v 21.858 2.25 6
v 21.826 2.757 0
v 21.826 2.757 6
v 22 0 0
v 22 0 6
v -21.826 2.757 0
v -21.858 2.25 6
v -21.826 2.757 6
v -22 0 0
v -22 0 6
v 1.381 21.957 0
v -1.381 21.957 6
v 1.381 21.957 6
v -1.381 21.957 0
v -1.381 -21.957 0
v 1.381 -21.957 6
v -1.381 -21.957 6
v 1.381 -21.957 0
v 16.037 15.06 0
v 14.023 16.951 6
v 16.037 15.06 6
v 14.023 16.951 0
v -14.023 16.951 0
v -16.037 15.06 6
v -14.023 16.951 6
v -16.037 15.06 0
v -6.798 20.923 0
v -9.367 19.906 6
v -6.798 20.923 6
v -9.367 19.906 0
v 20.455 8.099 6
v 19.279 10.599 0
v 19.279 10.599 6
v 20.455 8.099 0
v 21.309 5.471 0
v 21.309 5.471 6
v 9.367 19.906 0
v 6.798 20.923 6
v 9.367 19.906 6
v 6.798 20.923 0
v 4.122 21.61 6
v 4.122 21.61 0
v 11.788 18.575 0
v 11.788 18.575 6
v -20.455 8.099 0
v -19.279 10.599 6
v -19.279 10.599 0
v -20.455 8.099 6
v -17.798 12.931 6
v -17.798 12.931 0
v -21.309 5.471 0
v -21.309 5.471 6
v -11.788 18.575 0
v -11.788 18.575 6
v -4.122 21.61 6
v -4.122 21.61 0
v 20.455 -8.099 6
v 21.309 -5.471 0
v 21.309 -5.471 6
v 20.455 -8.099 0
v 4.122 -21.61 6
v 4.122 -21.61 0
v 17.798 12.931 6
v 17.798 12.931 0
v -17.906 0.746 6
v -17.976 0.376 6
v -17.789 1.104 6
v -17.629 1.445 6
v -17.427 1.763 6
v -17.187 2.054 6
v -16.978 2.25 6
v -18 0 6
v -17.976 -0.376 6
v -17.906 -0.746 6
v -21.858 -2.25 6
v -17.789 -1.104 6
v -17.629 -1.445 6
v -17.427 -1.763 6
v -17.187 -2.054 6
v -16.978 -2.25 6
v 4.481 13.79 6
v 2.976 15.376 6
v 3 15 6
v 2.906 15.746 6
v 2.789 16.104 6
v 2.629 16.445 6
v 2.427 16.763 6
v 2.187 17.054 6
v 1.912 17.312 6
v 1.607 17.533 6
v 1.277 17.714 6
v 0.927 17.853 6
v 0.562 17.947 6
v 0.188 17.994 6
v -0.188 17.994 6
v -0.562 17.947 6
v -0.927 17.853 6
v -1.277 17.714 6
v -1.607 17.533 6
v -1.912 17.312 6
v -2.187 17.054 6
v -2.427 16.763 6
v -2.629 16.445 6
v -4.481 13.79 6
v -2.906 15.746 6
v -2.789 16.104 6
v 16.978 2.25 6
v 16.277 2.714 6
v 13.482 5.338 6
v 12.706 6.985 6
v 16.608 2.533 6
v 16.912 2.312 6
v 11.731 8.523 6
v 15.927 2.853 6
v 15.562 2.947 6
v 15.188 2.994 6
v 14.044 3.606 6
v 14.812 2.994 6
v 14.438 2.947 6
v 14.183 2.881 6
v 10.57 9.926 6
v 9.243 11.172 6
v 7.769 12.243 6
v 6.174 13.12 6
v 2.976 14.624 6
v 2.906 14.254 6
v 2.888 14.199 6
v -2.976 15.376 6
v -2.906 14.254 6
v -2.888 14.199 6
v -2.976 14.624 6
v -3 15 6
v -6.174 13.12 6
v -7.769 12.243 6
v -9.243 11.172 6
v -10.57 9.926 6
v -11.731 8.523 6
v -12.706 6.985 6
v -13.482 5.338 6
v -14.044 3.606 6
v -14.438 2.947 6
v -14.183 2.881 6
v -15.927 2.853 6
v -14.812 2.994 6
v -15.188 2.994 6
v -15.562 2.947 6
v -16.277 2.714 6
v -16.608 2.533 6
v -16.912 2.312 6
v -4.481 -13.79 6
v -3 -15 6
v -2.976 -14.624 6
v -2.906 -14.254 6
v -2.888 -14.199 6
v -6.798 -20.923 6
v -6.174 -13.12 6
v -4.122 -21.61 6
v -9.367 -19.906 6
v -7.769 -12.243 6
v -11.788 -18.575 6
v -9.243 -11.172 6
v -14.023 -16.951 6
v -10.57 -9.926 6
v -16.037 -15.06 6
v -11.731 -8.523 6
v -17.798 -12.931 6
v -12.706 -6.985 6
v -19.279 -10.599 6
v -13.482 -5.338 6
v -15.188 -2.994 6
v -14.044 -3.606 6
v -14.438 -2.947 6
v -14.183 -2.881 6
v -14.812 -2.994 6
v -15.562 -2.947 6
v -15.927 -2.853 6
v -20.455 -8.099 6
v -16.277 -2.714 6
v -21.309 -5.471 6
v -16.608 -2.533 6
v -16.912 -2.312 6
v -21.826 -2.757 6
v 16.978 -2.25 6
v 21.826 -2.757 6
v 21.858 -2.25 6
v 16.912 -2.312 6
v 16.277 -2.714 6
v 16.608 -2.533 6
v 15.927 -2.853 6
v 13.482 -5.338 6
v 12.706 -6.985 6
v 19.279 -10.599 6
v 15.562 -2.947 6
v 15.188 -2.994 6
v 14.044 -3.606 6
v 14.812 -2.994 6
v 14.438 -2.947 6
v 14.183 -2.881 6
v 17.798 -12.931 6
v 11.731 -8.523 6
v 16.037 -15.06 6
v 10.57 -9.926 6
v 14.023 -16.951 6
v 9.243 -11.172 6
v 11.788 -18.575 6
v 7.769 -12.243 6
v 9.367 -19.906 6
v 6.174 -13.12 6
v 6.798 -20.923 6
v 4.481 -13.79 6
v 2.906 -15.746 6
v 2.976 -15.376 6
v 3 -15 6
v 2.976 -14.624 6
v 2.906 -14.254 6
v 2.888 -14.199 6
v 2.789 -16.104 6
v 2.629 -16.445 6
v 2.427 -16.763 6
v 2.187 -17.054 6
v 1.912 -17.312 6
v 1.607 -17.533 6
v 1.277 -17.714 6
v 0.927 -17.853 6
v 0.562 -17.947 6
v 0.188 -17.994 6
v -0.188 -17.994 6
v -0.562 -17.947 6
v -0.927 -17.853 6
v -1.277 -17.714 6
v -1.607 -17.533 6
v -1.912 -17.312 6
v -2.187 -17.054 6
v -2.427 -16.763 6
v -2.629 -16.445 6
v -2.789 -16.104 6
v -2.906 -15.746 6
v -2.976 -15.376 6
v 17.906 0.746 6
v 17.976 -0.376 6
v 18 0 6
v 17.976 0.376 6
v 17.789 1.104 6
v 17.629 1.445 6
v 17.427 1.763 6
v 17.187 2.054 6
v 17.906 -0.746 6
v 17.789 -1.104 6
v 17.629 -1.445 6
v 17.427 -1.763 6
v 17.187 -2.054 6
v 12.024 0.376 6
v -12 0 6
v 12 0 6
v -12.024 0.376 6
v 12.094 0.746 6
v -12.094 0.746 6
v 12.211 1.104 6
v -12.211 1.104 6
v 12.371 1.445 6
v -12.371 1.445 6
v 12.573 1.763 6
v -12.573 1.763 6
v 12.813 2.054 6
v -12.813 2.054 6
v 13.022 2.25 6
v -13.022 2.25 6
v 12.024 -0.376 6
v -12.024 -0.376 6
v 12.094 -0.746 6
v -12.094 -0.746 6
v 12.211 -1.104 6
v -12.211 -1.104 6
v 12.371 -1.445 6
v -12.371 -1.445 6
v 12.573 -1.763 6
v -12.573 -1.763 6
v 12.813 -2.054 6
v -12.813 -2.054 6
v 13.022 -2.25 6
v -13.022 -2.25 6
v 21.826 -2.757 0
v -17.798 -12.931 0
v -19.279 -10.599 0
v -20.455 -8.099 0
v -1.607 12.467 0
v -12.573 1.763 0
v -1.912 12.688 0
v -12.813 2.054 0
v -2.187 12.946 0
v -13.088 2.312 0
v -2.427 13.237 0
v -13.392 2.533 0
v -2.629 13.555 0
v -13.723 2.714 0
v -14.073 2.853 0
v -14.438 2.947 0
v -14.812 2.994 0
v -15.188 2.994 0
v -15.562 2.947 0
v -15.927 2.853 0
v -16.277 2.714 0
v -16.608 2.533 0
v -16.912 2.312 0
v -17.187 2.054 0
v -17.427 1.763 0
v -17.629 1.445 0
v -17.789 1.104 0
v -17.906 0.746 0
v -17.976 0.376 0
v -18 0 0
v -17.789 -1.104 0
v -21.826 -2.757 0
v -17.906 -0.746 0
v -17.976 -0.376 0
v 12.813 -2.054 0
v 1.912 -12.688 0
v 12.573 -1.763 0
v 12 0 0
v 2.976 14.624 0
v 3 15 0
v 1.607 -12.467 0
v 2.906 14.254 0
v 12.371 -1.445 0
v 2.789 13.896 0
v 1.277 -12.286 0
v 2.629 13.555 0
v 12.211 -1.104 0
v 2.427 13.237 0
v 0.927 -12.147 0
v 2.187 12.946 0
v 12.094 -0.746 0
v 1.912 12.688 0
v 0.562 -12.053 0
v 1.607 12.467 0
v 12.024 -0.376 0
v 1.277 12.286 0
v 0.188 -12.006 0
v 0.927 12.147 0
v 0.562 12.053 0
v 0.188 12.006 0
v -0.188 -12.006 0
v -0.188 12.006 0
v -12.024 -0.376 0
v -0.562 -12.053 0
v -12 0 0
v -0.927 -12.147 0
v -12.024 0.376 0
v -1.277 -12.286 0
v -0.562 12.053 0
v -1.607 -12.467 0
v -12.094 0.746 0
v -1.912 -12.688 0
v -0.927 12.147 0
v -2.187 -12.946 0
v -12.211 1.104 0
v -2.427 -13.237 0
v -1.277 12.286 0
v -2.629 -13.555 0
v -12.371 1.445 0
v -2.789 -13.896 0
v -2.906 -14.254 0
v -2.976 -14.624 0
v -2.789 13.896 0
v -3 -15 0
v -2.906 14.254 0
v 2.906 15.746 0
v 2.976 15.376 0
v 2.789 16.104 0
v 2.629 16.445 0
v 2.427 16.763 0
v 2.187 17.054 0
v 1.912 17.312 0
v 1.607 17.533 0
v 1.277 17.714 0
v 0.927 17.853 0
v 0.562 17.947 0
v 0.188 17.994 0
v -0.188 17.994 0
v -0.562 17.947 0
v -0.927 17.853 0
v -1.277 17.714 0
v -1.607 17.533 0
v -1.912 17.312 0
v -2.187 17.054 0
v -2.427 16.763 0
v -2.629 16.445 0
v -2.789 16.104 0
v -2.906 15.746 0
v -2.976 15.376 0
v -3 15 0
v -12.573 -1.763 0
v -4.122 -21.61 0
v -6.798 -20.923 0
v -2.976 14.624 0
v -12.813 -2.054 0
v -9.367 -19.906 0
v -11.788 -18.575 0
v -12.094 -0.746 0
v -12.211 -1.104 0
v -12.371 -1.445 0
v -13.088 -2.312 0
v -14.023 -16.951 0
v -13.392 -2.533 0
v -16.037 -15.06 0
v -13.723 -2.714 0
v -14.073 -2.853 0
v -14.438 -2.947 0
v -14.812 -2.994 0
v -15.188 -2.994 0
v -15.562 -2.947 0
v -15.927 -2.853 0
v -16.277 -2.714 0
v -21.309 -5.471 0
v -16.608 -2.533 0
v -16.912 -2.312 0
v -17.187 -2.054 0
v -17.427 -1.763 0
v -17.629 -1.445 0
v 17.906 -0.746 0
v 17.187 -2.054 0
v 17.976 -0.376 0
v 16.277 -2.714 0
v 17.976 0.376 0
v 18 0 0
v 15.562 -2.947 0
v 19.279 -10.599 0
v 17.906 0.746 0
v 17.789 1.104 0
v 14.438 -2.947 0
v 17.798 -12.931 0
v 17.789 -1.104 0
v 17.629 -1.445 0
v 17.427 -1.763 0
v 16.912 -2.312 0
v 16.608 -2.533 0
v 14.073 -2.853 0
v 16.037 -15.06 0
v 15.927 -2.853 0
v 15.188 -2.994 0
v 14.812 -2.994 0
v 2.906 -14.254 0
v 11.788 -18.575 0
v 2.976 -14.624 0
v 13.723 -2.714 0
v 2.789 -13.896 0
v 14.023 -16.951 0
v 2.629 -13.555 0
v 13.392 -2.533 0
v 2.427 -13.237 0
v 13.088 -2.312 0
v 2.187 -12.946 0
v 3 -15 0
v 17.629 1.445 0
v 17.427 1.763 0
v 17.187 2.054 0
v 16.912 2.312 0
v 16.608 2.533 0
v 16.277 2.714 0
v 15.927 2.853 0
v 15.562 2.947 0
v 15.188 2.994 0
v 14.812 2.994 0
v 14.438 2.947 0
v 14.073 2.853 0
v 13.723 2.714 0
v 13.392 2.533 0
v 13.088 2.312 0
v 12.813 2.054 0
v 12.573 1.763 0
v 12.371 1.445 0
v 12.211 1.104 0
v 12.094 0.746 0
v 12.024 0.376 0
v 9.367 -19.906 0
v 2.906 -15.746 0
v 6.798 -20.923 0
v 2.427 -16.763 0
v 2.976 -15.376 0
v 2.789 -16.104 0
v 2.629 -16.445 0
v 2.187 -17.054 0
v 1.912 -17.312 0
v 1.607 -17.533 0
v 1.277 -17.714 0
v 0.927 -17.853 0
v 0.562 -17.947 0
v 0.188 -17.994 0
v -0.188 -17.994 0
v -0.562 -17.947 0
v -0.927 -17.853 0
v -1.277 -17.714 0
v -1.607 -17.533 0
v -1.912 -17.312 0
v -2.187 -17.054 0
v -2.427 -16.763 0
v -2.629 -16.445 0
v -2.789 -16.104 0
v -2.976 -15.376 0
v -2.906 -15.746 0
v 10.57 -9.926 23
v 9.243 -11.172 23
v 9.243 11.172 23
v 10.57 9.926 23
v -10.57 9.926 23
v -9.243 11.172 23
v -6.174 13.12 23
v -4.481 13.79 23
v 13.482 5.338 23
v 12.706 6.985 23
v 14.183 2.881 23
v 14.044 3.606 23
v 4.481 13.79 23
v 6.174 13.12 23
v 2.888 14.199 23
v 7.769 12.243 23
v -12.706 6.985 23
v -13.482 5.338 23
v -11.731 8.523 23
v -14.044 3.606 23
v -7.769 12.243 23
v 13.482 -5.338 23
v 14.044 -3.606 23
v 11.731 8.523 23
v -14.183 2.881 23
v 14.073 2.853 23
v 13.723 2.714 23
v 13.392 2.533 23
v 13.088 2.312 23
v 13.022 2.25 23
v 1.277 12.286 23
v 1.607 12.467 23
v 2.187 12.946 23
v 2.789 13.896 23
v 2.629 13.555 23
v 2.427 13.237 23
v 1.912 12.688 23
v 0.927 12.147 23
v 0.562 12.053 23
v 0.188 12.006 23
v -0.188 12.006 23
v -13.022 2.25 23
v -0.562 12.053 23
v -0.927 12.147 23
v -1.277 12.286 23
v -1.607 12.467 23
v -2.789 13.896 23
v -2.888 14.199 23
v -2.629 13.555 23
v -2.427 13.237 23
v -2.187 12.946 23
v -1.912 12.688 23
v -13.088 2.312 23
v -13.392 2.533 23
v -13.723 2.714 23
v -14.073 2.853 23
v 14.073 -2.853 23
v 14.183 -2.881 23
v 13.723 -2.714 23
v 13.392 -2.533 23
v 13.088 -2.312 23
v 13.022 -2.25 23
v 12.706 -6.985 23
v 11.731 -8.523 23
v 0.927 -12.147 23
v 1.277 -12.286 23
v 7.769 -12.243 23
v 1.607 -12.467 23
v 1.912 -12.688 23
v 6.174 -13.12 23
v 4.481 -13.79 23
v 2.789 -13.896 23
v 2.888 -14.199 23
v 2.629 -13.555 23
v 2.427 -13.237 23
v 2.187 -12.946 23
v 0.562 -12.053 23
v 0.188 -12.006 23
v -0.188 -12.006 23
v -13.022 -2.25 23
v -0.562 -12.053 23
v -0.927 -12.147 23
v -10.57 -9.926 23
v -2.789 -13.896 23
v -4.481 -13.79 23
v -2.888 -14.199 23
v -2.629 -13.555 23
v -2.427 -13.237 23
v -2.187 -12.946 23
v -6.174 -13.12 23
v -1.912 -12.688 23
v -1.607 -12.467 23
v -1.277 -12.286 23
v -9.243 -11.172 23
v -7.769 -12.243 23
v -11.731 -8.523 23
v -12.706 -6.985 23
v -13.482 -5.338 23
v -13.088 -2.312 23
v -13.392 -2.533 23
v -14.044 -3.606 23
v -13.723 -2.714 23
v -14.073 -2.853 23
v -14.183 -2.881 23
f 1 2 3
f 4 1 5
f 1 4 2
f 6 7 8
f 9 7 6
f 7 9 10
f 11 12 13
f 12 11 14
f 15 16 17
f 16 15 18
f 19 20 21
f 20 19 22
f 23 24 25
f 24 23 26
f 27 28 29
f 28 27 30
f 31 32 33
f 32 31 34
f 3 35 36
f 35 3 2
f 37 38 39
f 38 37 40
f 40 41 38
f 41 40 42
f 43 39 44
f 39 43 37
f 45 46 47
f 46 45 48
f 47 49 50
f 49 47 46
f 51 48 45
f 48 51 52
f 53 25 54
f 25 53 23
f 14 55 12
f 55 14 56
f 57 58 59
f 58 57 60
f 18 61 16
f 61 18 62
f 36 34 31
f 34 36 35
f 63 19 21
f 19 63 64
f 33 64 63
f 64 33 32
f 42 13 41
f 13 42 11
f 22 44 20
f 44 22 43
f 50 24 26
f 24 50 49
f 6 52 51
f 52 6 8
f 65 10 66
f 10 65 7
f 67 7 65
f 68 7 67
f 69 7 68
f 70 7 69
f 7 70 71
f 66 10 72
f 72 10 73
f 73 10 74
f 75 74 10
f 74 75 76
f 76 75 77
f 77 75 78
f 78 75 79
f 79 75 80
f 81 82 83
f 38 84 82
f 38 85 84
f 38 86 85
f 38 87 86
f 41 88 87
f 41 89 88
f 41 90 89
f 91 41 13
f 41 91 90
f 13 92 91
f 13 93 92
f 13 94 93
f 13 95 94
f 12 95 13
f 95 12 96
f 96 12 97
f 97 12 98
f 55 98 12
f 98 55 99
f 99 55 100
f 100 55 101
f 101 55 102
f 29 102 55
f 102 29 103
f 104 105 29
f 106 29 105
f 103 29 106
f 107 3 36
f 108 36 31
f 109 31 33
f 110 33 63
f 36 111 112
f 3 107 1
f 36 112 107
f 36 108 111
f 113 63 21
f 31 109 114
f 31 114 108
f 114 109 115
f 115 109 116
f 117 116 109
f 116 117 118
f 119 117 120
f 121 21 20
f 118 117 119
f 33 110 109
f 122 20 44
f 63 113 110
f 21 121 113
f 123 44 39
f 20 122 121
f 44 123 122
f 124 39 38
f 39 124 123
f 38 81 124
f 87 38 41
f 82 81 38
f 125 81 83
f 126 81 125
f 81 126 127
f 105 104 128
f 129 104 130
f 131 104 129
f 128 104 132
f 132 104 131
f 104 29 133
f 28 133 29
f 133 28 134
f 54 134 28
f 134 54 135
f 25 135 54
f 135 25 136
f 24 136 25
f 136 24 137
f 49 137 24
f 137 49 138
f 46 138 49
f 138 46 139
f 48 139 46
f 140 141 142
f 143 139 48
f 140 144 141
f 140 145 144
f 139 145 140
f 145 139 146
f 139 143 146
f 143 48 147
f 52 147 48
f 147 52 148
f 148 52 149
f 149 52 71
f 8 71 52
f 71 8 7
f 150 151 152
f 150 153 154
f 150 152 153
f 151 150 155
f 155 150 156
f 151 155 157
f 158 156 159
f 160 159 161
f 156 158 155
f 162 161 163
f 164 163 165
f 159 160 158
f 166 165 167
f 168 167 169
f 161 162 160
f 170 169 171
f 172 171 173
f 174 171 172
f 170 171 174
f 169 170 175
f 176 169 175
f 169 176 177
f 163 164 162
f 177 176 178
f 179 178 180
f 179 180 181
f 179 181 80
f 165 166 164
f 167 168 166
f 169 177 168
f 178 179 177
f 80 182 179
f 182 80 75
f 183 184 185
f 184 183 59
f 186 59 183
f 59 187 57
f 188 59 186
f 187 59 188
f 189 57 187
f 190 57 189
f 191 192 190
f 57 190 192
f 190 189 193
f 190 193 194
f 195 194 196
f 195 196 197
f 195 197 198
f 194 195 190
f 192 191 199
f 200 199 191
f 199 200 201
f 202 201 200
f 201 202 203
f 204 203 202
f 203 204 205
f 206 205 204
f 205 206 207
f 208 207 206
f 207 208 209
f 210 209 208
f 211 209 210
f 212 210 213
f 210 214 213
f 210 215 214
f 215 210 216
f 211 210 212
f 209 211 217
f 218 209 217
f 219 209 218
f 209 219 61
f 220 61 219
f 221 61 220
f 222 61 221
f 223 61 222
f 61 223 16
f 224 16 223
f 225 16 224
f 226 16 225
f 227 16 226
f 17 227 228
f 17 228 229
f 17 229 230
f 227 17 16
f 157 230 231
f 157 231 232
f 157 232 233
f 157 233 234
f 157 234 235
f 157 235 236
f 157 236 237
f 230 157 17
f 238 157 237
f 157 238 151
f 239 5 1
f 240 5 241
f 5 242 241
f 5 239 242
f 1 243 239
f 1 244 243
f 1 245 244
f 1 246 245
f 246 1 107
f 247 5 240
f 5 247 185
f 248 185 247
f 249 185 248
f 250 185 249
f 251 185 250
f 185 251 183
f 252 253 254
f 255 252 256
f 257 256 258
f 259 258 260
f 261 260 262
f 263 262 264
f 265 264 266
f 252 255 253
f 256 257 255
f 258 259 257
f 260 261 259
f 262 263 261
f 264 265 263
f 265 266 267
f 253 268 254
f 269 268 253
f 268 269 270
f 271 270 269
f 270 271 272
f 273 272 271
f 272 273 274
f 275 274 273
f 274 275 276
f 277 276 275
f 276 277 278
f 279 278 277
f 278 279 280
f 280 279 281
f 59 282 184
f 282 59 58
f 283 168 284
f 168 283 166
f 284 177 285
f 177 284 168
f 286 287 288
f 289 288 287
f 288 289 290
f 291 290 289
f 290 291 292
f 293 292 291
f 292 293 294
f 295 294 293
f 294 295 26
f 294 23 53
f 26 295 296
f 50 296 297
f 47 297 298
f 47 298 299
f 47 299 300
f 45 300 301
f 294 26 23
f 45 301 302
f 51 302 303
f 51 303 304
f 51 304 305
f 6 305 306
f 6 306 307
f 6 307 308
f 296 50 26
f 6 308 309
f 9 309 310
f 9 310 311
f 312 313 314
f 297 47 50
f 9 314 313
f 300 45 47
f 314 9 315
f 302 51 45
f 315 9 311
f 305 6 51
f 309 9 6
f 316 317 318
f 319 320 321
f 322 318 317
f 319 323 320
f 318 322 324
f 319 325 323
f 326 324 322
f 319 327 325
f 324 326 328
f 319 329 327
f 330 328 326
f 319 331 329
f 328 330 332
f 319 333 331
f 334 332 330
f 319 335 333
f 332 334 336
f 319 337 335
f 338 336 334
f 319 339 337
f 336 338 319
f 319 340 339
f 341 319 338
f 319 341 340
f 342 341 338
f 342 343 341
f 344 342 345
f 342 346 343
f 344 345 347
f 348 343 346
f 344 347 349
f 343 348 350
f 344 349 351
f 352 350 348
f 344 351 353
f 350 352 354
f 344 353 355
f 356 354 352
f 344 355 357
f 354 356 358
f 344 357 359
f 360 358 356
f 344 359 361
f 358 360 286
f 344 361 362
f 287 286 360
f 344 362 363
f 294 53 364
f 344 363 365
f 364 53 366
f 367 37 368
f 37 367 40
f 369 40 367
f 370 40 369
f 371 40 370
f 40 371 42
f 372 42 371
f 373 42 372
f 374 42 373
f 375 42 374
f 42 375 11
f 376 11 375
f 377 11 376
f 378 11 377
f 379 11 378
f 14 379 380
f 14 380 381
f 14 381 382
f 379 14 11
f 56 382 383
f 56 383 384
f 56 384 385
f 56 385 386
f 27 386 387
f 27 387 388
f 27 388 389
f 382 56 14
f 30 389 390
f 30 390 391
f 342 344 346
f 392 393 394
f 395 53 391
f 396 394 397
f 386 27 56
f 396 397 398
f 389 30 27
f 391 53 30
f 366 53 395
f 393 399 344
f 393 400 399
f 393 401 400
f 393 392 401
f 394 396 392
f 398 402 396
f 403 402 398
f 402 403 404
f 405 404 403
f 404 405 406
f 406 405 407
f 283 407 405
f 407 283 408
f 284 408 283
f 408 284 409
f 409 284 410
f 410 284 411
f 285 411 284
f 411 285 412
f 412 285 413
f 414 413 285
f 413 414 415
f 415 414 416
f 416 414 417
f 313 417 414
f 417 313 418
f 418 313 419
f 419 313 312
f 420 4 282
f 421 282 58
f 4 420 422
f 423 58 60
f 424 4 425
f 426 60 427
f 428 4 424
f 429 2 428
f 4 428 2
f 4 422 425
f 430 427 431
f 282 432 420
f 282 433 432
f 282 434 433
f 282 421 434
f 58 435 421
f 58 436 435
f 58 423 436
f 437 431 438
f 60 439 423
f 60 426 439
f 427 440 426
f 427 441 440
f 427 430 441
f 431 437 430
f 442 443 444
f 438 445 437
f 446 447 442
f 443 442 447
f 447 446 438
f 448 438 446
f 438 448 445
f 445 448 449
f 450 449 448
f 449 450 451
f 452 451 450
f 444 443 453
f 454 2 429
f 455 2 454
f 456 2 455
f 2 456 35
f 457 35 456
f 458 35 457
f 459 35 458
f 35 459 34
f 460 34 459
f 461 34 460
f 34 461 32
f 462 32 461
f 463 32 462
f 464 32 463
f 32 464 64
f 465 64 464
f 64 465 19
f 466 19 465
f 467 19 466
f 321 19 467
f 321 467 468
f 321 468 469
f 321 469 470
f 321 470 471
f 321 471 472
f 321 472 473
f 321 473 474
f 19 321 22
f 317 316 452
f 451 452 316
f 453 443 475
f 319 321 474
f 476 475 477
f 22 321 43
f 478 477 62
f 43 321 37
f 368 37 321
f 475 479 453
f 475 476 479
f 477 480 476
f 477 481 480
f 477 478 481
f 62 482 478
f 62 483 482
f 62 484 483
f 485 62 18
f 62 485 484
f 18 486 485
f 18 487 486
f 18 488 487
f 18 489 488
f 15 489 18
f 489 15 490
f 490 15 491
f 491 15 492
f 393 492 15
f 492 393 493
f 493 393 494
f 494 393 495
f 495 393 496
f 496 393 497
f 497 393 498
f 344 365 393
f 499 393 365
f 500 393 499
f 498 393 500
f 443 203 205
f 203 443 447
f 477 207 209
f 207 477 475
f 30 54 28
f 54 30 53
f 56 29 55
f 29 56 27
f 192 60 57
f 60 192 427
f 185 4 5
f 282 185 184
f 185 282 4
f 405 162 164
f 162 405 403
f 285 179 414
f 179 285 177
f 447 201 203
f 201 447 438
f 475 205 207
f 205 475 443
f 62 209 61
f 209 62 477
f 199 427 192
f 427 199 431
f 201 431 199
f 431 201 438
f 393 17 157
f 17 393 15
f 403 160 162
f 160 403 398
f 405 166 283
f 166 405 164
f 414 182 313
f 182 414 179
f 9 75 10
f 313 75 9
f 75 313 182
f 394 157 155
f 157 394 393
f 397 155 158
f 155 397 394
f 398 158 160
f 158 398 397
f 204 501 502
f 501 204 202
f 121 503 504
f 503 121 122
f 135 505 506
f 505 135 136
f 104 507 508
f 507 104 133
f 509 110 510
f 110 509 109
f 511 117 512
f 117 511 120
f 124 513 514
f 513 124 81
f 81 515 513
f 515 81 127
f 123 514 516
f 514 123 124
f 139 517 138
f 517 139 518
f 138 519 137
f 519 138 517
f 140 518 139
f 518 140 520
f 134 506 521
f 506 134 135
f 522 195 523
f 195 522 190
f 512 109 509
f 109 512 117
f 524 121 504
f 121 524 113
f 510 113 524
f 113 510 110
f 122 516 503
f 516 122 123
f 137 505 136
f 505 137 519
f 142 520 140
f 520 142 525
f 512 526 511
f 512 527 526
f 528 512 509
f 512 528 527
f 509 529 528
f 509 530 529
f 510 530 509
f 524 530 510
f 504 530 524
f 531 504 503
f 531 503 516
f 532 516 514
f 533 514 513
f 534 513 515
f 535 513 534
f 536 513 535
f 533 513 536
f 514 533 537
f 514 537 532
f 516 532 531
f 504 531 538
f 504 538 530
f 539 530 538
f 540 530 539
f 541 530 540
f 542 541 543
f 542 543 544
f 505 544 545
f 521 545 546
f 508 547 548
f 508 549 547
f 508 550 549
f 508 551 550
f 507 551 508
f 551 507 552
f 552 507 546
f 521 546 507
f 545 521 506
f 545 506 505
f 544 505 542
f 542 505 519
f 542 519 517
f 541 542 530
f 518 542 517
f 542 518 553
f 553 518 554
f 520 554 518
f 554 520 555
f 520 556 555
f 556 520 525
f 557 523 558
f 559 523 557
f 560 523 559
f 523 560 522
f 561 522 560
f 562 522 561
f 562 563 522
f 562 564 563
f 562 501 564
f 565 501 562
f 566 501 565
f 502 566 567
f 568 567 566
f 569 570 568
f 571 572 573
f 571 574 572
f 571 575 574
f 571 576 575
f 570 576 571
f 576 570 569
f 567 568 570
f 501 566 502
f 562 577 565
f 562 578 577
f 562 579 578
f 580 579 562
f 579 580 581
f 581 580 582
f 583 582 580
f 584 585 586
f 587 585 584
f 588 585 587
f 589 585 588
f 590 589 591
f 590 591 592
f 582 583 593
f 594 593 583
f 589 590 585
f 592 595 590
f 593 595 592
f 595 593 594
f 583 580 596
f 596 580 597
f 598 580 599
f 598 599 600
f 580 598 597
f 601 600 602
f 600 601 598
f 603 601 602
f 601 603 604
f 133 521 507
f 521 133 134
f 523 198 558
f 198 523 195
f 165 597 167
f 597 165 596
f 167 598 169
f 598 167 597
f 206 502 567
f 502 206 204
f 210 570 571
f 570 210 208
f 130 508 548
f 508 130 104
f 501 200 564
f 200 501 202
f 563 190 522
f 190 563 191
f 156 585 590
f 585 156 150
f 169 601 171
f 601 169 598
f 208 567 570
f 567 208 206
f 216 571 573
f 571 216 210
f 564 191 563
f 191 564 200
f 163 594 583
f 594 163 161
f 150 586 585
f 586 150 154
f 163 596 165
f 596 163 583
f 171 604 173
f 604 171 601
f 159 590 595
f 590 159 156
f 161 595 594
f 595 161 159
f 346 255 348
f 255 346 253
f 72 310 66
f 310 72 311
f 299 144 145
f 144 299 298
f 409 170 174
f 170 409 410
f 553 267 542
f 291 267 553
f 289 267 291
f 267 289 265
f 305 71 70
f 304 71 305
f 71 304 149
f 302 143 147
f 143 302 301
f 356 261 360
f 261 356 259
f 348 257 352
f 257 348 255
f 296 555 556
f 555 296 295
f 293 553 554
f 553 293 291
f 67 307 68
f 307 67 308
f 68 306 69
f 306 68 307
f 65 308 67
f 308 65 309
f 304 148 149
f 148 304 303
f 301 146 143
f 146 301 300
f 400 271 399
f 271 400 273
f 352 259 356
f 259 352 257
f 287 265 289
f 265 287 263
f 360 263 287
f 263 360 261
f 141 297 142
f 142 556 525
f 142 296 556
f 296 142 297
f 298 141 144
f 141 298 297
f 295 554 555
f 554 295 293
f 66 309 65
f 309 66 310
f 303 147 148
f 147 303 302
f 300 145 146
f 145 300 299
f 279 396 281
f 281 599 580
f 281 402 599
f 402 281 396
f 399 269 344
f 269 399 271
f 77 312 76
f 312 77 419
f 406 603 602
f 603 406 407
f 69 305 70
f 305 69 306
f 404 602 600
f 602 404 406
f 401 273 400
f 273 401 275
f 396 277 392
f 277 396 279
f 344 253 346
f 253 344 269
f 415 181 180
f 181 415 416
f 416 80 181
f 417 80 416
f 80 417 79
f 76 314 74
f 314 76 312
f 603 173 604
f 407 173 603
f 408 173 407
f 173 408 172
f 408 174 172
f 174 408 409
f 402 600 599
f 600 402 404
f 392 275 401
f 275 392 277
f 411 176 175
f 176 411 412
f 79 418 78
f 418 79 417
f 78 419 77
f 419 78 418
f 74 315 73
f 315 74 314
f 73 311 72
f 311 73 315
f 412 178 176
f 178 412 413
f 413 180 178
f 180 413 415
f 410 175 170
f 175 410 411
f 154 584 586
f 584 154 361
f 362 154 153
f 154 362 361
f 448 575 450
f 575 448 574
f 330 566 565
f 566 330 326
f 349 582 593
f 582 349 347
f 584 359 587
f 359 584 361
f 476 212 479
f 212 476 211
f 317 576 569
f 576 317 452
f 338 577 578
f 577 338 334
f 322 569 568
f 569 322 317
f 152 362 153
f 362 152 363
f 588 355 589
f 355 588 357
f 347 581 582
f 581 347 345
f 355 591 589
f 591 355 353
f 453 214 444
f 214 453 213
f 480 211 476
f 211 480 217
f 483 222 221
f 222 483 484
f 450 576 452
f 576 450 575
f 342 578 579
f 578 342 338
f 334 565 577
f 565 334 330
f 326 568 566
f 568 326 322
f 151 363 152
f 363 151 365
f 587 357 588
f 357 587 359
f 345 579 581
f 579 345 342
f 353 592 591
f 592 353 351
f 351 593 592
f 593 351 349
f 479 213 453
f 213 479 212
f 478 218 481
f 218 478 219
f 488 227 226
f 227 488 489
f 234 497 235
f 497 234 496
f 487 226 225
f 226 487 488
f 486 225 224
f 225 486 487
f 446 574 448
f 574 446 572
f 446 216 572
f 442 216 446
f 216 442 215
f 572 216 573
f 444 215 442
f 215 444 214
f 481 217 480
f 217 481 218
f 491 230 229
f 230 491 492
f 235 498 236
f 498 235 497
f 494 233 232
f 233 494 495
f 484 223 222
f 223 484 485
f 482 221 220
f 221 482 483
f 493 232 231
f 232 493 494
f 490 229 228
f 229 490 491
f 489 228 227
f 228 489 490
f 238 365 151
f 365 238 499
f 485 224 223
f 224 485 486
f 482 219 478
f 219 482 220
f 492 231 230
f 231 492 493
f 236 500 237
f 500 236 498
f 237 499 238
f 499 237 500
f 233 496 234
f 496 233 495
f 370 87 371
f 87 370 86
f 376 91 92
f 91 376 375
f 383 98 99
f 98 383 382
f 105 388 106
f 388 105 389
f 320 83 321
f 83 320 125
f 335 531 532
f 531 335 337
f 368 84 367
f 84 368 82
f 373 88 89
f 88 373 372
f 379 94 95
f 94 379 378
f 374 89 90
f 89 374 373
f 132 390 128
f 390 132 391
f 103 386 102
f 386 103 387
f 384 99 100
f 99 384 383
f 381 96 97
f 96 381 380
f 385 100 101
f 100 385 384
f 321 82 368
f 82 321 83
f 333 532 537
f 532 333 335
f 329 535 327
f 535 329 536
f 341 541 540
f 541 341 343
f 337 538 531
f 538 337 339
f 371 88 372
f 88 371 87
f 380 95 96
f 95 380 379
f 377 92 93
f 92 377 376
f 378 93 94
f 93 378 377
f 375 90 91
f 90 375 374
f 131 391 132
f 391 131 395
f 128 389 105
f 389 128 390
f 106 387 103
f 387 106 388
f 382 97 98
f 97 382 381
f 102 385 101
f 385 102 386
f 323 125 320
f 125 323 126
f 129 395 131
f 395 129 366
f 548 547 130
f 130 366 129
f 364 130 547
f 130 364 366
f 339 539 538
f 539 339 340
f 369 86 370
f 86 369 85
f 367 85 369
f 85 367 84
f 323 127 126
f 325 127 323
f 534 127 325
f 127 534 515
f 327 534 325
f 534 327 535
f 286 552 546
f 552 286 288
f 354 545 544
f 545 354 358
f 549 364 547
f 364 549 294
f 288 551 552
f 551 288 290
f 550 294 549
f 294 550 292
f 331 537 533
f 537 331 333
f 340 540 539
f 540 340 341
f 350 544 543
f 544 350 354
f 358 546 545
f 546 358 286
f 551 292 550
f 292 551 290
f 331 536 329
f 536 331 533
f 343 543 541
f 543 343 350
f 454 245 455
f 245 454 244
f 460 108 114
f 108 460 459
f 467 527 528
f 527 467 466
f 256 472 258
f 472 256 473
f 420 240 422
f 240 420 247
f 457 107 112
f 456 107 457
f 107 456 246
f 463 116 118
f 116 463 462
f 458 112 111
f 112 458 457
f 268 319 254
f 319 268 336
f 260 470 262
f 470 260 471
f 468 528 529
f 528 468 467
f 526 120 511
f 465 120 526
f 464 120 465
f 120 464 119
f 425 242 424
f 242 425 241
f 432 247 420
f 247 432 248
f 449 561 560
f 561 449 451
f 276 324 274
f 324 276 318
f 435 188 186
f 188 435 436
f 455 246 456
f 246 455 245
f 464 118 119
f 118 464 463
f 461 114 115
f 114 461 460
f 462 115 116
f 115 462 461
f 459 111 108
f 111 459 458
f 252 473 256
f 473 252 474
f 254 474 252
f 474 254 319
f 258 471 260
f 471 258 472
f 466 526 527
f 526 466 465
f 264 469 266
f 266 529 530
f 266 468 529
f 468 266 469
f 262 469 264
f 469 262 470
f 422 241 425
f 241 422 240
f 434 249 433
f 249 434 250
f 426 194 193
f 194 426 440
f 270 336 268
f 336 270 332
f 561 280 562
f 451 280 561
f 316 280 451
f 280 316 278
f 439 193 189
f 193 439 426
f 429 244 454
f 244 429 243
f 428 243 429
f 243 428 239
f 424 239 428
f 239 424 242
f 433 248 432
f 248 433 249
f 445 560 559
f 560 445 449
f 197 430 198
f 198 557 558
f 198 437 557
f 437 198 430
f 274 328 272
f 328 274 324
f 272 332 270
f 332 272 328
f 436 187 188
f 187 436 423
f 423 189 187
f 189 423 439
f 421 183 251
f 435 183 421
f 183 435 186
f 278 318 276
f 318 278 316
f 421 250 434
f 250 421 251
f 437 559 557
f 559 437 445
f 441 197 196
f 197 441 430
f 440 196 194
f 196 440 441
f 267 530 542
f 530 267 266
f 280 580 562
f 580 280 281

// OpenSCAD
$fn = 50;


difference() {
	union() {
		cylinder(h = 6, r = 22.0000000000);
		translate(v = [0, 0, 3.0000000000]) {
			cylinder(h = 20, r = 14.5000000000);
		}
	}
	union() {
		translate(v = [-15.0000000000, 0.0000000000, 0.0000000000]) {
			cylinder(h = 100, r = 3.0000000000);
		}
		translate(v = [0.0000000000, -15.0000000000, 0.0000000000]) {
			cylinder(h = 100, r = 3.0000000000);
		}
		translate(v = [0.0000000000, 15.0000000000, 0.0000000000]) {
			cylinder(h = 100, r = 3.0000000000);
		}
		translate(v = [15.0000000000, 0.0000000000, 0.0000000000]) {
			cylinder(h = 100, r = 3.0000000000);
		}
		translate(v = [-27.0000000000, -2.2500000000, 6]) {
			cube(size = [54, 4.5000000000, 20]);
		}
	}
}
